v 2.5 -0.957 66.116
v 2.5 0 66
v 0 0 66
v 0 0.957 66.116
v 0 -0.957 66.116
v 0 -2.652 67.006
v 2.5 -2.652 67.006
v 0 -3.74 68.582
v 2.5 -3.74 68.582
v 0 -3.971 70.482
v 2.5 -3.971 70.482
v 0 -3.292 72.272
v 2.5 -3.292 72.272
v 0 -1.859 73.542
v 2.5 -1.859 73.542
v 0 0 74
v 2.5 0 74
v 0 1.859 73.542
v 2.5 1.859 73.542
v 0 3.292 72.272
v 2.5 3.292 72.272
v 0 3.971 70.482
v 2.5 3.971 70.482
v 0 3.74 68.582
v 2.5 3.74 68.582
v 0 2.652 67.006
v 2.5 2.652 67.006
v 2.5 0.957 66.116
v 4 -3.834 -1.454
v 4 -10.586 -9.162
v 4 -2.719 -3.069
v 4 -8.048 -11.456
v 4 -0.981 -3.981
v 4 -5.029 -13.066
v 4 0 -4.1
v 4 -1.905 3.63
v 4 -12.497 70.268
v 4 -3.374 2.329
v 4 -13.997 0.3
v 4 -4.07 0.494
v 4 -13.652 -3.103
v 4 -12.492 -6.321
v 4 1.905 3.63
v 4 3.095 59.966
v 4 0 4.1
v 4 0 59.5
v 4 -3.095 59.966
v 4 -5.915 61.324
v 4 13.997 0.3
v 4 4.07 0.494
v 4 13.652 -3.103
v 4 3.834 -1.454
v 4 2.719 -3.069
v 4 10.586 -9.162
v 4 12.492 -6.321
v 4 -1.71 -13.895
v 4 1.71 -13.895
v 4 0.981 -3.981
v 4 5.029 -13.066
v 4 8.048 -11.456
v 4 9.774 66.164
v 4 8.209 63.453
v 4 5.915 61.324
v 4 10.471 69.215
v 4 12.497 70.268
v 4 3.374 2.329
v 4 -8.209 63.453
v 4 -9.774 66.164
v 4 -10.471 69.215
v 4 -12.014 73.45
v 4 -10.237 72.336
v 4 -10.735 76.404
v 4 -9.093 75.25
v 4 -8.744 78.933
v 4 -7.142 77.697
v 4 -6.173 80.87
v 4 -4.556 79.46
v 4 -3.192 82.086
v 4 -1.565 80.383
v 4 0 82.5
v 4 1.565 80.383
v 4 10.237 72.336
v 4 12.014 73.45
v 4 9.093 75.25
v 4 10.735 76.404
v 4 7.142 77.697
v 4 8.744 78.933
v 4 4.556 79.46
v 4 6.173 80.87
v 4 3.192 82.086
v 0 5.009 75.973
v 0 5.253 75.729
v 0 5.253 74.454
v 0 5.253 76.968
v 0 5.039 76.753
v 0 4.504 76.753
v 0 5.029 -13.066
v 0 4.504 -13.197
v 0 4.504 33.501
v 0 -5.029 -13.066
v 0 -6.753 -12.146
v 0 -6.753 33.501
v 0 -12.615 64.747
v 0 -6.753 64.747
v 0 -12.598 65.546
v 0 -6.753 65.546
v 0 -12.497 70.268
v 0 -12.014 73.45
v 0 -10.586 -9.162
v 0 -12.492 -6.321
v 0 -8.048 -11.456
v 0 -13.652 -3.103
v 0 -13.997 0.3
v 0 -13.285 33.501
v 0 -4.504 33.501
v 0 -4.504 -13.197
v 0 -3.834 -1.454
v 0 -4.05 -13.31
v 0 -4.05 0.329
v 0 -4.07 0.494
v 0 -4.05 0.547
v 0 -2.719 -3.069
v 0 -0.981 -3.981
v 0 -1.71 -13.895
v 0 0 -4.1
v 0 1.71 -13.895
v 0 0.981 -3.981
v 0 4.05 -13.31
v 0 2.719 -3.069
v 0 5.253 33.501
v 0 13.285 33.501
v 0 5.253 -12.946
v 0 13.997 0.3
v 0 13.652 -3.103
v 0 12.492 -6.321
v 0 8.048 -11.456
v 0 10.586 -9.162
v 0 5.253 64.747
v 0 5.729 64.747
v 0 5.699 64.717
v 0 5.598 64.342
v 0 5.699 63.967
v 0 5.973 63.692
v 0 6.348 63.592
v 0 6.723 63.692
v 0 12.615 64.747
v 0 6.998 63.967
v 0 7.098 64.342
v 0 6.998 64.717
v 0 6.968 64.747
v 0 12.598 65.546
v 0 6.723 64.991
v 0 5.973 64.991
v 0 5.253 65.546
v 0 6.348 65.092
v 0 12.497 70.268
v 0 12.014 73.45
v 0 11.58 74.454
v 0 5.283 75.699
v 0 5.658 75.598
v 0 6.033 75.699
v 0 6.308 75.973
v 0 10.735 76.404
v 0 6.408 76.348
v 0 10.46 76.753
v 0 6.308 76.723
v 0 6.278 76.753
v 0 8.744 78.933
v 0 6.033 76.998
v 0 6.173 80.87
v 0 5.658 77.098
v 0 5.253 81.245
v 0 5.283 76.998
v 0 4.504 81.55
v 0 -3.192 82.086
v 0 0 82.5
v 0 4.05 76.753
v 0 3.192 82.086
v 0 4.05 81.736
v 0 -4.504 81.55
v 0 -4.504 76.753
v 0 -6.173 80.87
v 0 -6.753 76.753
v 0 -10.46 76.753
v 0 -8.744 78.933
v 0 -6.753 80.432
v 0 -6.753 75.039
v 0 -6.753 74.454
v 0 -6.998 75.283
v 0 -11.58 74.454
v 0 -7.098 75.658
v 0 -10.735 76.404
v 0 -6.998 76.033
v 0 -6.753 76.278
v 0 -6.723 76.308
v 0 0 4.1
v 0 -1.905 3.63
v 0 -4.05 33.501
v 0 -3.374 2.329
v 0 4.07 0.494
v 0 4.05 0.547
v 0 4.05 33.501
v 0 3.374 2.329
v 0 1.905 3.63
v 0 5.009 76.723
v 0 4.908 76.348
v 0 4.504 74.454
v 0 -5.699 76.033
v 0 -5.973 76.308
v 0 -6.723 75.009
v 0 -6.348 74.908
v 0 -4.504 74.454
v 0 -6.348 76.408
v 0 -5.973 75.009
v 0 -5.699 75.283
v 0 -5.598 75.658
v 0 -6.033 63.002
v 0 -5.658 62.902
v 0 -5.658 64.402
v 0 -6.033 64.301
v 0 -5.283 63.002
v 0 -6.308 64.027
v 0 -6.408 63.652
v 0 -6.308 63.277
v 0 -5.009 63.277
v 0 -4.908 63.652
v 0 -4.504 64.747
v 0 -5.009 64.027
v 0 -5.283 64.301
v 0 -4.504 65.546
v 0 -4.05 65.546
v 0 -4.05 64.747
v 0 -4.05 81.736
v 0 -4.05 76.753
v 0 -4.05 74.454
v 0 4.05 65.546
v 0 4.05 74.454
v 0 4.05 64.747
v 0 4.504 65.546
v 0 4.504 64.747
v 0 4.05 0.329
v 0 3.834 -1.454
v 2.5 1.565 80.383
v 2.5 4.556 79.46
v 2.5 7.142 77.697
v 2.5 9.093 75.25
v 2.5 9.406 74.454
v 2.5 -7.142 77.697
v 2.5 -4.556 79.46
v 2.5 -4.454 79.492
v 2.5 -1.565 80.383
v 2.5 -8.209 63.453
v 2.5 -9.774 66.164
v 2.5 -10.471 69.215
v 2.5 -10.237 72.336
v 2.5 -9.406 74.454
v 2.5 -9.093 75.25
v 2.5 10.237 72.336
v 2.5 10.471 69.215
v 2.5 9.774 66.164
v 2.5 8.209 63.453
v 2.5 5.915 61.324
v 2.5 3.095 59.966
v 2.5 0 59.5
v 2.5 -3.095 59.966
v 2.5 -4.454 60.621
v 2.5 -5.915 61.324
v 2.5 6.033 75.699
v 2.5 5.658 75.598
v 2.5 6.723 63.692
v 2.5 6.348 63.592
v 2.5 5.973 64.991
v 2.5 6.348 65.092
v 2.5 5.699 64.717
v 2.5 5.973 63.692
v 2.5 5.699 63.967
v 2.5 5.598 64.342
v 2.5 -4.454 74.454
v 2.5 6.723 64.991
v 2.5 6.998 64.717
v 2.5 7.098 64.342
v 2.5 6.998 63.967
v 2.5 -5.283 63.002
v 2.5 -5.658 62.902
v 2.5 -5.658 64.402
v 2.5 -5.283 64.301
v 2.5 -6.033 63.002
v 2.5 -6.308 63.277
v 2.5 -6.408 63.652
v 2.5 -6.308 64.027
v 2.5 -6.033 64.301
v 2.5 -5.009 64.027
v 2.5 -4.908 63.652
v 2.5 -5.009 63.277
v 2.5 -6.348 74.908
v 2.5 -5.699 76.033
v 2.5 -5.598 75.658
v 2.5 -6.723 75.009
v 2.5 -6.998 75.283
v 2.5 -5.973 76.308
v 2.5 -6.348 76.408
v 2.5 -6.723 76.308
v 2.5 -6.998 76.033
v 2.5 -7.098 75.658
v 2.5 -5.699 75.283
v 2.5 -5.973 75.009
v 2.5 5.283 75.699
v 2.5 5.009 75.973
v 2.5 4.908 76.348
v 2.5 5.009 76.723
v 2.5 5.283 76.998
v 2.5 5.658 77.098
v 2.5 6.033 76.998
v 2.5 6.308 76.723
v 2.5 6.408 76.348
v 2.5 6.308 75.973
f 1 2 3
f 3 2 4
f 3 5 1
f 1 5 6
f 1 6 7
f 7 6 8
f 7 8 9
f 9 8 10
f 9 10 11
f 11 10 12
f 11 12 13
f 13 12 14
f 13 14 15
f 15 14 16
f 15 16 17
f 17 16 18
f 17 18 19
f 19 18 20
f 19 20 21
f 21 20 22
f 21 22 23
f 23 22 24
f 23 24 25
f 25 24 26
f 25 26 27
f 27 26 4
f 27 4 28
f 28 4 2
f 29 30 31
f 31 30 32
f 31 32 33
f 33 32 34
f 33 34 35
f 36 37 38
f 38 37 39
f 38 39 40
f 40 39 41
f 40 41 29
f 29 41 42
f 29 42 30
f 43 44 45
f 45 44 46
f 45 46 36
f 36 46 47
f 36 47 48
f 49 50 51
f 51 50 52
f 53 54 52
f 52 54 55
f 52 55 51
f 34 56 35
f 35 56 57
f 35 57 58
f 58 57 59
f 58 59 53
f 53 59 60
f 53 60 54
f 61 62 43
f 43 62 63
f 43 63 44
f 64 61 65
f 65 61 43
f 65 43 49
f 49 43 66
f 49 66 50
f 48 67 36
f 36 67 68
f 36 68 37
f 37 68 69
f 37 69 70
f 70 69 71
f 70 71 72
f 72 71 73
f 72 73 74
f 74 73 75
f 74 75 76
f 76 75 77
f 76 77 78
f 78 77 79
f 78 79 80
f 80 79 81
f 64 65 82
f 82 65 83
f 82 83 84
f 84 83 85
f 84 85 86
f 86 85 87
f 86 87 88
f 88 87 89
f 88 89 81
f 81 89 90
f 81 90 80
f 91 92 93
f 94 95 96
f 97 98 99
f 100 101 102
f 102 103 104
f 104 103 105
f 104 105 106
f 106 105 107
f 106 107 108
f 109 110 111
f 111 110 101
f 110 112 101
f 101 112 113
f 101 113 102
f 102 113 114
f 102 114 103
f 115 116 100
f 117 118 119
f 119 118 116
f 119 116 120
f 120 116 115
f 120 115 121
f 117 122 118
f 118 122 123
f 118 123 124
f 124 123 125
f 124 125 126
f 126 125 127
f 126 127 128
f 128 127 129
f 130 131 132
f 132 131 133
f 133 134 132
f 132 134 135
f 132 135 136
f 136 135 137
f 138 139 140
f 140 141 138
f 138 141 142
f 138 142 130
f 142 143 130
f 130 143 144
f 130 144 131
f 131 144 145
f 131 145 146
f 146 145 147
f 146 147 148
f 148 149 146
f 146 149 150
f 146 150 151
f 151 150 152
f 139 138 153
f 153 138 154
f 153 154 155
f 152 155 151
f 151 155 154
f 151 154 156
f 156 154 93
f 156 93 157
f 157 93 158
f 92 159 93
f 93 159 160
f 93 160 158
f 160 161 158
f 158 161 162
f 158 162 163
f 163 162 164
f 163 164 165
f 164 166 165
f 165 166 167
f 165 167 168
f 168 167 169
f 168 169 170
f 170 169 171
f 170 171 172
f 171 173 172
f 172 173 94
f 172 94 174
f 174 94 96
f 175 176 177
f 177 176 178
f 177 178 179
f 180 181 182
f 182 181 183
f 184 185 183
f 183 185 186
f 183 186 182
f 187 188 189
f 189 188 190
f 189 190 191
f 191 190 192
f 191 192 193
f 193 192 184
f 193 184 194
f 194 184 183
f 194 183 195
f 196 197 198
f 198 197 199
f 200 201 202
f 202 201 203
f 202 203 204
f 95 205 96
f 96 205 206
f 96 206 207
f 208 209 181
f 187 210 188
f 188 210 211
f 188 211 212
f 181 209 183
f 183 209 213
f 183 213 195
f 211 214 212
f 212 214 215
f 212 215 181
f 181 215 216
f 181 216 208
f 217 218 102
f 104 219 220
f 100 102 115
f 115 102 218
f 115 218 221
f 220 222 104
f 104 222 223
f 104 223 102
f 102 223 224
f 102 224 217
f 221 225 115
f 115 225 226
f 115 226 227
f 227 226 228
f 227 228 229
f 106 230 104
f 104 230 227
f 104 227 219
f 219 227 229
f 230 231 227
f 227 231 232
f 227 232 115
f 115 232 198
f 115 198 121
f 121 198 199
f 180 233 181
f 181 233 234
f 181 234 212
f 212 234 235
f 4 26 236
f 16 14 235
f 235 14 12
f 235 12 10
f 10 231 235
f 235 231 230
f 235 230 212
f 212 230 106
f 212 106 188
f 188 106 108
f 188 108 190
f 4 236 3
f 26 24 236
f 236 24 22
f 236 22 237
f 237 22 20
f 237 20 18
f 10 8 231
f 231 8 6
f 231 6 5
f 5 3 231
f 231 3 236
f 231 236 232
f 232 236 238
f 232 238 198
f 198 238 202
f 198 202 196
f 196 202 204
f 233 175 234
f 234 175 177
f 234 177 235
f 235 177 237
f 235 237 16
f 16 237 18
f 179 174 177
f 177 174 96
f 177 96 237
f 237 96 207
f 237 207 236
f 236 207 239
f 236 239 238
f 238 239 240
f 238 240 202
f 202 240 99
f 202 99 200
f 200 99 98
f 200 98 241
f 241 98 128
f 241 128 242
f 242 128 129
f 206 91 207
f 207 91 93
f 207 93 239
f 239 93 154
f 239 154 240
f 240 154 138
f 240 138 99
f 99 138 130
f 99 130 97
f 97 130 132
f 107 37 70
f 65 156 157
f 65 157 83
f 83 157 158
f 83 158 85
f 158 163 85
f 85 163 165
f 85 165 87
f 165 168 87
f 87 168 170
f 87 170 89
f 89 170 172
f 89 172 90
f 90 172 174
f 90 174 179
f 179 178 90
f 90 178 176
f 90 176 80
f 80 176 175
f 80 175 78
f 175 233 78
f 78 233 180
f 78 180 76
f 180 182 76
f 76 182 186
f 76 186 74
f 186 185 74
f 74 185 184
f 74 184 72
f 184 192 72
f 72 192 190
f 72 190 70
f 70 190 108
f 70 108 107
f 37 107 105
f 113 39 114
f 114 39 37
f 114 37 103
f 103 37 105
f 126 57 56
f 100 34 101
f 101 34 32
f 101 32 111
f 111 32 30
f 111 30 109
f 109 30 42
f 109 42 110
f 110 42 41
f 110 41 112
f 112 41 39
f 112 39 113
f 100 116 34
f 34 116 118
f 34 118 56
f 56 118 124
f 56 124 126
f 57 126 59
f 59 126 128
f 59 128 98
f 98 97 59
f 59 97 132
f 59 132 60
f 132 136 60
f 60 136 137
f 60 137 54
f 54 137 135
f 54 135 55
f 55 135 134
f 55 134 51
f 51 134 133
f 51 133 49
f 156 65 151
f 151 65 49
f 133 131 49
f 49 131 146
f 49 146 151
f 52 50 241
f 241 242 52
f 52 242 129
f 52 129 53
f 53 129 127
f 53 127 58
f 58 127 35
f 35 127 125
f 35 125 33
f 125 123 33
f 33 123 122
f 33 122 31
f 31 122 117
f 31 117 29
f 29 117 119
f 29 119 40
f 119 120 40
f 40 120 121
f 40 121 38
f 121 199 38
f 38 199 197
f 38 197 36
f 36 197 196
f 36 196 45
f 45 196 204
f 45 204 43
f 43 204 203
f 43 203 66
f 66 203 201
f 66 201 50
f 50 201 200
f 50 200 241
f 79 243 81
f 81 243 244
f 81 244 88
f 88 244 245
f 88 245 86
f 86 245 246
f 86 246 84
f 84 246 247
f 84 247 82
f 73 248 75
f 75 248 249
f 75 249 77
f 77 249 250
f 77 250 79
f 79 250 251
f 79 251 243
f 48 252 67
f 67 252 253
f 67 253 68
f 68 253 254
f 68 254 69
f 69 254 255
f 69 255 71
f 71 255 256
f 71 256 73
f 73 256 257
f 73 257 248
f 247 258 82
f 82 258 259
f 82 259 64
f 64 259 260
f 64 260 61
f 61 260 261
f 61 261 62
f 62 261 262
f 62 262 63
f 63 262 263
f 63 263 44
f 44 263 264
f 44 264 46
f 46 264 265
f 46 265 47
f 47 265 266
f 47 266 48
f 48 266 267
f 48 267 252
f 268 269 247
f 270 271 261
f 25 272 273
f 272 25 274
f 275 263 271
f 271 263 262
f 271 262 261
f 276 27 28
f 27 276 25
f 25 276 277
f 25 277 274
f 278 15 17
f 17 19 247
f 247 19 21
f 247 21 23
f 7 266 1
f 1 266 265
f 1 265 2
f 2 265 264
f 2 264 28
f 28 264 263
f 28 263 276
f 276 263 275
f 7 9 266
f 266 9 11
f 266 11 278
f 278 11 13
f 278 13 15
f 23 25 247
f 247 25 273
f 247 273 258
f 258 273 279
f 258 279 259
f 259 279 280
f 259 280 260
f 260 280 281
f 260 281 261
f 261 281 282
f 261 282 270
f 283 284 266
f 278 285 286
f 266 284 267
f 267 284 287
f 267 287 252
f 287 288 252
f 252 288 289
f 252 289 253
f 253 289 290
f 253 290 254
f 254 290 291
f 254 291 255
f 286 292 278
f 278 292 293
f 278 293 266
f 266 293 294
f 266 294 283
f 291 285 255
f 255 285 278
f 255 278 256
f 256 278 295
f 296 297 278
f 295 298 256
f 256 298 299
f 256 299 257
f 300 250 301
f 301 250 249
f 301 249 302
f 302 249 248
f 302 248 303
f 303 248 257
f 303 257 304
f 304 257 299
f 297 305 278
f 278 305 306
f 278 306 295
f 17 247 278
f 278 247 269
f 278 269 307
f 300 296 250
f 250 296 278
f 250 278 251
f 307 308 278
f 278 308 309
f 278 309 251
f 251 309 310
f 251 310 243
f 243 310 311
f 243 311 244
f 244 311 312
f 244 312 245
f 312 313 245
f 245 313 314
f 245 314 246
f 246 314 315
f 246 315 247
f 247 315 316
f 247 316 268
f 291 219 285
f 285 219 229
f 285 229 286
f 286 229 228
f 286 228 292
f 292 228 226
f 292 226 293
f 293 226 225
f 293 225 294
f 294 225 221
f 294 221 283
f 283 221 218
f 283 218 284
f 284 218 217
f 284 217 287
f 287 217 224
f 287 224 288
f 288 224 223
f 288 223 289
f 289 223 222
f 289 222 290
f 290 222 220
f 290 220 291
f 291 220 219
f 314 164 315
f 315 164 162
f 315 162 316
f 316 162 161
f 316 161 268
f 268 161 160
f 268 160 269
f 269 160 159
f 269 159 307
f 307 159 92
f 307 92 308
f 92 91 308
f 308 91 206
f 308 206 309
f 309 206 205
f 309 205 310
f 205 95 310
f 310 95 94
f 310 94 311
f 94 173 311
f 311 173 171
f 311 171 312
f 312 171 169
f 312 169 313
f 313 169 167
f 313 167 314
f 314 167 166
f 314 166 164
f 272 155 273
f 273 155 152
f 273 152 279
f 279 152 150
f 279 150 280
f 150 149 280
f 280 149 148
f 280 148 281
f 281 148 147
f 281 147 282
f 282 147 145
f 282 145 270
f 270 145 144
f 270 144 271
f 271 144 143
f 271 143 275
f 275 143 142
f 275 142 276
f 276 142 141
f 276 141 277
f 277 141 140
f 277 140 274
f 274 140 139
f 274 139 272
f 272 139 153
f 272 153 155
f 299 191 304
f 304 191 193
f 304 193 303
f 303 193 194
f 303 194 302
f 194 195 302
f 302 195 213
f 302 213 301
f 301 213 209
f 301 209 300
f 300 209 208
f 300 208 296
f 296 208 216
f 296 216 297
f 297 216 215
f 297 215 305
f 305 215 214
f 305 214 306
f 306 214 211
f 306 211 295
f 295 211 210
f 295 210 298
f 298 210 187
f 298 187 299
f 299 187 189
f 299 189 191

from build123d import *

# Parameters (mm, degrees)
CROQUIS1_R              = 4.1
CROQUIS1_R_2            = 4
SALIENTE_EXTRUIR1_DEPTH = 4
CROQUIS2_R              = 10.5
CORTAR_EXTRUIR1_DEPTH   = 1.5
CROQUIS3_R              = 0.75
CORTAR_EXTRUIR2_DEPTH   = 10


with BuildPart() as part:
    # Croquis1 → Saliente-Extruir1 (new body)
    with BuildSketch(Plane(origin=(0, 0, 0), x_dir=(0, 0, -1), z_dir=(1, 0, 0))):
        with BuildLine():
            Line((-70.267857143, 12.497129773), (-0.3, 13.996785345))
            ThreePointArc((-0.3, 13.996785345), (14, 0), (-0.3, -13.996785345))
            Line((-0.3, -13.996785345), (-70.267857143, -12.497129773))
            ThreePointArc((-70.267857143, -12.497129773), (-82.5, 0), (-70.267857143, 12.497129773))
        make_face()
        Circle(CROQUIS1_R, mode=Mode.SUBTRACT)
        with Locations((-70, 0)):
            Circle(CROQUIS1_R_2, mode=Mode.SUBTRACT)
    extrude(amount=SALIENTE_EXTRUIR1_DEPTH)

    # Croquis2 → Cortar-Extruir1 (cut)
    with BuildSketch(Plane(origin=(4, 0, 0), x_dir=(0, 0, -1), z_dir=(1, 0, 0))):
        with Locations((-70, 0)):
            Circle(CROQUIS2_R)
    extrude(amount=-CORTAR_EXTRUIR1_DEPTH, mode=Mode.SUBTRACT)

    # Croquis3 → Cortar-Extruir2 (cut)
    with BuildSketch(Plane.ZY):
        with Locations((63.65189161, -5.658093307)):
            Circle(CROQUIS3_R)
        with Locations((76.34810839, 5.658093307)):
            Circle(CROQUIS3_R)
        with Locations((64.341906693, 6.34810839)):
            Circle(CROQUIS3_R)
        with Locations((75.658093307, -6.34810839)):
            Circle(CROQUIS3_R)
    extrude(amount=-CORTAR_EXTRUIR2_DEPTH, mode=Mode.SUBTRACT)


solid = part.part
